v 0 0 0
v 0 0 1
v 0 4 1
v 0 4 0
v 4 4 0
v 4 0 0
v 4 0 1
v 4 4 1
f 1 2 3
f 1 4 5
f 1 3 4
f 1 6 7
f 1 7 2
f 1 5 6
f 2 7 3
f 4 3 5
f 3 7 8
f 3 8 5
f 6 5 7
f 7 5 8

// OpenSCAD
/* Warning, this is a very basic generator with a lot of approximation 
input data : [VQFN, LUC, 4x4x1mm, 16, , A, C04-25393A]
generated by com.zoubworld.electronics.cad.model3d.Basic
Date : Sun Feb 15 10:50:49 CET 2026
*/

//body
color("black")
translate([0,0,0])
cube([4.0,4.0,1.0], center=false);
